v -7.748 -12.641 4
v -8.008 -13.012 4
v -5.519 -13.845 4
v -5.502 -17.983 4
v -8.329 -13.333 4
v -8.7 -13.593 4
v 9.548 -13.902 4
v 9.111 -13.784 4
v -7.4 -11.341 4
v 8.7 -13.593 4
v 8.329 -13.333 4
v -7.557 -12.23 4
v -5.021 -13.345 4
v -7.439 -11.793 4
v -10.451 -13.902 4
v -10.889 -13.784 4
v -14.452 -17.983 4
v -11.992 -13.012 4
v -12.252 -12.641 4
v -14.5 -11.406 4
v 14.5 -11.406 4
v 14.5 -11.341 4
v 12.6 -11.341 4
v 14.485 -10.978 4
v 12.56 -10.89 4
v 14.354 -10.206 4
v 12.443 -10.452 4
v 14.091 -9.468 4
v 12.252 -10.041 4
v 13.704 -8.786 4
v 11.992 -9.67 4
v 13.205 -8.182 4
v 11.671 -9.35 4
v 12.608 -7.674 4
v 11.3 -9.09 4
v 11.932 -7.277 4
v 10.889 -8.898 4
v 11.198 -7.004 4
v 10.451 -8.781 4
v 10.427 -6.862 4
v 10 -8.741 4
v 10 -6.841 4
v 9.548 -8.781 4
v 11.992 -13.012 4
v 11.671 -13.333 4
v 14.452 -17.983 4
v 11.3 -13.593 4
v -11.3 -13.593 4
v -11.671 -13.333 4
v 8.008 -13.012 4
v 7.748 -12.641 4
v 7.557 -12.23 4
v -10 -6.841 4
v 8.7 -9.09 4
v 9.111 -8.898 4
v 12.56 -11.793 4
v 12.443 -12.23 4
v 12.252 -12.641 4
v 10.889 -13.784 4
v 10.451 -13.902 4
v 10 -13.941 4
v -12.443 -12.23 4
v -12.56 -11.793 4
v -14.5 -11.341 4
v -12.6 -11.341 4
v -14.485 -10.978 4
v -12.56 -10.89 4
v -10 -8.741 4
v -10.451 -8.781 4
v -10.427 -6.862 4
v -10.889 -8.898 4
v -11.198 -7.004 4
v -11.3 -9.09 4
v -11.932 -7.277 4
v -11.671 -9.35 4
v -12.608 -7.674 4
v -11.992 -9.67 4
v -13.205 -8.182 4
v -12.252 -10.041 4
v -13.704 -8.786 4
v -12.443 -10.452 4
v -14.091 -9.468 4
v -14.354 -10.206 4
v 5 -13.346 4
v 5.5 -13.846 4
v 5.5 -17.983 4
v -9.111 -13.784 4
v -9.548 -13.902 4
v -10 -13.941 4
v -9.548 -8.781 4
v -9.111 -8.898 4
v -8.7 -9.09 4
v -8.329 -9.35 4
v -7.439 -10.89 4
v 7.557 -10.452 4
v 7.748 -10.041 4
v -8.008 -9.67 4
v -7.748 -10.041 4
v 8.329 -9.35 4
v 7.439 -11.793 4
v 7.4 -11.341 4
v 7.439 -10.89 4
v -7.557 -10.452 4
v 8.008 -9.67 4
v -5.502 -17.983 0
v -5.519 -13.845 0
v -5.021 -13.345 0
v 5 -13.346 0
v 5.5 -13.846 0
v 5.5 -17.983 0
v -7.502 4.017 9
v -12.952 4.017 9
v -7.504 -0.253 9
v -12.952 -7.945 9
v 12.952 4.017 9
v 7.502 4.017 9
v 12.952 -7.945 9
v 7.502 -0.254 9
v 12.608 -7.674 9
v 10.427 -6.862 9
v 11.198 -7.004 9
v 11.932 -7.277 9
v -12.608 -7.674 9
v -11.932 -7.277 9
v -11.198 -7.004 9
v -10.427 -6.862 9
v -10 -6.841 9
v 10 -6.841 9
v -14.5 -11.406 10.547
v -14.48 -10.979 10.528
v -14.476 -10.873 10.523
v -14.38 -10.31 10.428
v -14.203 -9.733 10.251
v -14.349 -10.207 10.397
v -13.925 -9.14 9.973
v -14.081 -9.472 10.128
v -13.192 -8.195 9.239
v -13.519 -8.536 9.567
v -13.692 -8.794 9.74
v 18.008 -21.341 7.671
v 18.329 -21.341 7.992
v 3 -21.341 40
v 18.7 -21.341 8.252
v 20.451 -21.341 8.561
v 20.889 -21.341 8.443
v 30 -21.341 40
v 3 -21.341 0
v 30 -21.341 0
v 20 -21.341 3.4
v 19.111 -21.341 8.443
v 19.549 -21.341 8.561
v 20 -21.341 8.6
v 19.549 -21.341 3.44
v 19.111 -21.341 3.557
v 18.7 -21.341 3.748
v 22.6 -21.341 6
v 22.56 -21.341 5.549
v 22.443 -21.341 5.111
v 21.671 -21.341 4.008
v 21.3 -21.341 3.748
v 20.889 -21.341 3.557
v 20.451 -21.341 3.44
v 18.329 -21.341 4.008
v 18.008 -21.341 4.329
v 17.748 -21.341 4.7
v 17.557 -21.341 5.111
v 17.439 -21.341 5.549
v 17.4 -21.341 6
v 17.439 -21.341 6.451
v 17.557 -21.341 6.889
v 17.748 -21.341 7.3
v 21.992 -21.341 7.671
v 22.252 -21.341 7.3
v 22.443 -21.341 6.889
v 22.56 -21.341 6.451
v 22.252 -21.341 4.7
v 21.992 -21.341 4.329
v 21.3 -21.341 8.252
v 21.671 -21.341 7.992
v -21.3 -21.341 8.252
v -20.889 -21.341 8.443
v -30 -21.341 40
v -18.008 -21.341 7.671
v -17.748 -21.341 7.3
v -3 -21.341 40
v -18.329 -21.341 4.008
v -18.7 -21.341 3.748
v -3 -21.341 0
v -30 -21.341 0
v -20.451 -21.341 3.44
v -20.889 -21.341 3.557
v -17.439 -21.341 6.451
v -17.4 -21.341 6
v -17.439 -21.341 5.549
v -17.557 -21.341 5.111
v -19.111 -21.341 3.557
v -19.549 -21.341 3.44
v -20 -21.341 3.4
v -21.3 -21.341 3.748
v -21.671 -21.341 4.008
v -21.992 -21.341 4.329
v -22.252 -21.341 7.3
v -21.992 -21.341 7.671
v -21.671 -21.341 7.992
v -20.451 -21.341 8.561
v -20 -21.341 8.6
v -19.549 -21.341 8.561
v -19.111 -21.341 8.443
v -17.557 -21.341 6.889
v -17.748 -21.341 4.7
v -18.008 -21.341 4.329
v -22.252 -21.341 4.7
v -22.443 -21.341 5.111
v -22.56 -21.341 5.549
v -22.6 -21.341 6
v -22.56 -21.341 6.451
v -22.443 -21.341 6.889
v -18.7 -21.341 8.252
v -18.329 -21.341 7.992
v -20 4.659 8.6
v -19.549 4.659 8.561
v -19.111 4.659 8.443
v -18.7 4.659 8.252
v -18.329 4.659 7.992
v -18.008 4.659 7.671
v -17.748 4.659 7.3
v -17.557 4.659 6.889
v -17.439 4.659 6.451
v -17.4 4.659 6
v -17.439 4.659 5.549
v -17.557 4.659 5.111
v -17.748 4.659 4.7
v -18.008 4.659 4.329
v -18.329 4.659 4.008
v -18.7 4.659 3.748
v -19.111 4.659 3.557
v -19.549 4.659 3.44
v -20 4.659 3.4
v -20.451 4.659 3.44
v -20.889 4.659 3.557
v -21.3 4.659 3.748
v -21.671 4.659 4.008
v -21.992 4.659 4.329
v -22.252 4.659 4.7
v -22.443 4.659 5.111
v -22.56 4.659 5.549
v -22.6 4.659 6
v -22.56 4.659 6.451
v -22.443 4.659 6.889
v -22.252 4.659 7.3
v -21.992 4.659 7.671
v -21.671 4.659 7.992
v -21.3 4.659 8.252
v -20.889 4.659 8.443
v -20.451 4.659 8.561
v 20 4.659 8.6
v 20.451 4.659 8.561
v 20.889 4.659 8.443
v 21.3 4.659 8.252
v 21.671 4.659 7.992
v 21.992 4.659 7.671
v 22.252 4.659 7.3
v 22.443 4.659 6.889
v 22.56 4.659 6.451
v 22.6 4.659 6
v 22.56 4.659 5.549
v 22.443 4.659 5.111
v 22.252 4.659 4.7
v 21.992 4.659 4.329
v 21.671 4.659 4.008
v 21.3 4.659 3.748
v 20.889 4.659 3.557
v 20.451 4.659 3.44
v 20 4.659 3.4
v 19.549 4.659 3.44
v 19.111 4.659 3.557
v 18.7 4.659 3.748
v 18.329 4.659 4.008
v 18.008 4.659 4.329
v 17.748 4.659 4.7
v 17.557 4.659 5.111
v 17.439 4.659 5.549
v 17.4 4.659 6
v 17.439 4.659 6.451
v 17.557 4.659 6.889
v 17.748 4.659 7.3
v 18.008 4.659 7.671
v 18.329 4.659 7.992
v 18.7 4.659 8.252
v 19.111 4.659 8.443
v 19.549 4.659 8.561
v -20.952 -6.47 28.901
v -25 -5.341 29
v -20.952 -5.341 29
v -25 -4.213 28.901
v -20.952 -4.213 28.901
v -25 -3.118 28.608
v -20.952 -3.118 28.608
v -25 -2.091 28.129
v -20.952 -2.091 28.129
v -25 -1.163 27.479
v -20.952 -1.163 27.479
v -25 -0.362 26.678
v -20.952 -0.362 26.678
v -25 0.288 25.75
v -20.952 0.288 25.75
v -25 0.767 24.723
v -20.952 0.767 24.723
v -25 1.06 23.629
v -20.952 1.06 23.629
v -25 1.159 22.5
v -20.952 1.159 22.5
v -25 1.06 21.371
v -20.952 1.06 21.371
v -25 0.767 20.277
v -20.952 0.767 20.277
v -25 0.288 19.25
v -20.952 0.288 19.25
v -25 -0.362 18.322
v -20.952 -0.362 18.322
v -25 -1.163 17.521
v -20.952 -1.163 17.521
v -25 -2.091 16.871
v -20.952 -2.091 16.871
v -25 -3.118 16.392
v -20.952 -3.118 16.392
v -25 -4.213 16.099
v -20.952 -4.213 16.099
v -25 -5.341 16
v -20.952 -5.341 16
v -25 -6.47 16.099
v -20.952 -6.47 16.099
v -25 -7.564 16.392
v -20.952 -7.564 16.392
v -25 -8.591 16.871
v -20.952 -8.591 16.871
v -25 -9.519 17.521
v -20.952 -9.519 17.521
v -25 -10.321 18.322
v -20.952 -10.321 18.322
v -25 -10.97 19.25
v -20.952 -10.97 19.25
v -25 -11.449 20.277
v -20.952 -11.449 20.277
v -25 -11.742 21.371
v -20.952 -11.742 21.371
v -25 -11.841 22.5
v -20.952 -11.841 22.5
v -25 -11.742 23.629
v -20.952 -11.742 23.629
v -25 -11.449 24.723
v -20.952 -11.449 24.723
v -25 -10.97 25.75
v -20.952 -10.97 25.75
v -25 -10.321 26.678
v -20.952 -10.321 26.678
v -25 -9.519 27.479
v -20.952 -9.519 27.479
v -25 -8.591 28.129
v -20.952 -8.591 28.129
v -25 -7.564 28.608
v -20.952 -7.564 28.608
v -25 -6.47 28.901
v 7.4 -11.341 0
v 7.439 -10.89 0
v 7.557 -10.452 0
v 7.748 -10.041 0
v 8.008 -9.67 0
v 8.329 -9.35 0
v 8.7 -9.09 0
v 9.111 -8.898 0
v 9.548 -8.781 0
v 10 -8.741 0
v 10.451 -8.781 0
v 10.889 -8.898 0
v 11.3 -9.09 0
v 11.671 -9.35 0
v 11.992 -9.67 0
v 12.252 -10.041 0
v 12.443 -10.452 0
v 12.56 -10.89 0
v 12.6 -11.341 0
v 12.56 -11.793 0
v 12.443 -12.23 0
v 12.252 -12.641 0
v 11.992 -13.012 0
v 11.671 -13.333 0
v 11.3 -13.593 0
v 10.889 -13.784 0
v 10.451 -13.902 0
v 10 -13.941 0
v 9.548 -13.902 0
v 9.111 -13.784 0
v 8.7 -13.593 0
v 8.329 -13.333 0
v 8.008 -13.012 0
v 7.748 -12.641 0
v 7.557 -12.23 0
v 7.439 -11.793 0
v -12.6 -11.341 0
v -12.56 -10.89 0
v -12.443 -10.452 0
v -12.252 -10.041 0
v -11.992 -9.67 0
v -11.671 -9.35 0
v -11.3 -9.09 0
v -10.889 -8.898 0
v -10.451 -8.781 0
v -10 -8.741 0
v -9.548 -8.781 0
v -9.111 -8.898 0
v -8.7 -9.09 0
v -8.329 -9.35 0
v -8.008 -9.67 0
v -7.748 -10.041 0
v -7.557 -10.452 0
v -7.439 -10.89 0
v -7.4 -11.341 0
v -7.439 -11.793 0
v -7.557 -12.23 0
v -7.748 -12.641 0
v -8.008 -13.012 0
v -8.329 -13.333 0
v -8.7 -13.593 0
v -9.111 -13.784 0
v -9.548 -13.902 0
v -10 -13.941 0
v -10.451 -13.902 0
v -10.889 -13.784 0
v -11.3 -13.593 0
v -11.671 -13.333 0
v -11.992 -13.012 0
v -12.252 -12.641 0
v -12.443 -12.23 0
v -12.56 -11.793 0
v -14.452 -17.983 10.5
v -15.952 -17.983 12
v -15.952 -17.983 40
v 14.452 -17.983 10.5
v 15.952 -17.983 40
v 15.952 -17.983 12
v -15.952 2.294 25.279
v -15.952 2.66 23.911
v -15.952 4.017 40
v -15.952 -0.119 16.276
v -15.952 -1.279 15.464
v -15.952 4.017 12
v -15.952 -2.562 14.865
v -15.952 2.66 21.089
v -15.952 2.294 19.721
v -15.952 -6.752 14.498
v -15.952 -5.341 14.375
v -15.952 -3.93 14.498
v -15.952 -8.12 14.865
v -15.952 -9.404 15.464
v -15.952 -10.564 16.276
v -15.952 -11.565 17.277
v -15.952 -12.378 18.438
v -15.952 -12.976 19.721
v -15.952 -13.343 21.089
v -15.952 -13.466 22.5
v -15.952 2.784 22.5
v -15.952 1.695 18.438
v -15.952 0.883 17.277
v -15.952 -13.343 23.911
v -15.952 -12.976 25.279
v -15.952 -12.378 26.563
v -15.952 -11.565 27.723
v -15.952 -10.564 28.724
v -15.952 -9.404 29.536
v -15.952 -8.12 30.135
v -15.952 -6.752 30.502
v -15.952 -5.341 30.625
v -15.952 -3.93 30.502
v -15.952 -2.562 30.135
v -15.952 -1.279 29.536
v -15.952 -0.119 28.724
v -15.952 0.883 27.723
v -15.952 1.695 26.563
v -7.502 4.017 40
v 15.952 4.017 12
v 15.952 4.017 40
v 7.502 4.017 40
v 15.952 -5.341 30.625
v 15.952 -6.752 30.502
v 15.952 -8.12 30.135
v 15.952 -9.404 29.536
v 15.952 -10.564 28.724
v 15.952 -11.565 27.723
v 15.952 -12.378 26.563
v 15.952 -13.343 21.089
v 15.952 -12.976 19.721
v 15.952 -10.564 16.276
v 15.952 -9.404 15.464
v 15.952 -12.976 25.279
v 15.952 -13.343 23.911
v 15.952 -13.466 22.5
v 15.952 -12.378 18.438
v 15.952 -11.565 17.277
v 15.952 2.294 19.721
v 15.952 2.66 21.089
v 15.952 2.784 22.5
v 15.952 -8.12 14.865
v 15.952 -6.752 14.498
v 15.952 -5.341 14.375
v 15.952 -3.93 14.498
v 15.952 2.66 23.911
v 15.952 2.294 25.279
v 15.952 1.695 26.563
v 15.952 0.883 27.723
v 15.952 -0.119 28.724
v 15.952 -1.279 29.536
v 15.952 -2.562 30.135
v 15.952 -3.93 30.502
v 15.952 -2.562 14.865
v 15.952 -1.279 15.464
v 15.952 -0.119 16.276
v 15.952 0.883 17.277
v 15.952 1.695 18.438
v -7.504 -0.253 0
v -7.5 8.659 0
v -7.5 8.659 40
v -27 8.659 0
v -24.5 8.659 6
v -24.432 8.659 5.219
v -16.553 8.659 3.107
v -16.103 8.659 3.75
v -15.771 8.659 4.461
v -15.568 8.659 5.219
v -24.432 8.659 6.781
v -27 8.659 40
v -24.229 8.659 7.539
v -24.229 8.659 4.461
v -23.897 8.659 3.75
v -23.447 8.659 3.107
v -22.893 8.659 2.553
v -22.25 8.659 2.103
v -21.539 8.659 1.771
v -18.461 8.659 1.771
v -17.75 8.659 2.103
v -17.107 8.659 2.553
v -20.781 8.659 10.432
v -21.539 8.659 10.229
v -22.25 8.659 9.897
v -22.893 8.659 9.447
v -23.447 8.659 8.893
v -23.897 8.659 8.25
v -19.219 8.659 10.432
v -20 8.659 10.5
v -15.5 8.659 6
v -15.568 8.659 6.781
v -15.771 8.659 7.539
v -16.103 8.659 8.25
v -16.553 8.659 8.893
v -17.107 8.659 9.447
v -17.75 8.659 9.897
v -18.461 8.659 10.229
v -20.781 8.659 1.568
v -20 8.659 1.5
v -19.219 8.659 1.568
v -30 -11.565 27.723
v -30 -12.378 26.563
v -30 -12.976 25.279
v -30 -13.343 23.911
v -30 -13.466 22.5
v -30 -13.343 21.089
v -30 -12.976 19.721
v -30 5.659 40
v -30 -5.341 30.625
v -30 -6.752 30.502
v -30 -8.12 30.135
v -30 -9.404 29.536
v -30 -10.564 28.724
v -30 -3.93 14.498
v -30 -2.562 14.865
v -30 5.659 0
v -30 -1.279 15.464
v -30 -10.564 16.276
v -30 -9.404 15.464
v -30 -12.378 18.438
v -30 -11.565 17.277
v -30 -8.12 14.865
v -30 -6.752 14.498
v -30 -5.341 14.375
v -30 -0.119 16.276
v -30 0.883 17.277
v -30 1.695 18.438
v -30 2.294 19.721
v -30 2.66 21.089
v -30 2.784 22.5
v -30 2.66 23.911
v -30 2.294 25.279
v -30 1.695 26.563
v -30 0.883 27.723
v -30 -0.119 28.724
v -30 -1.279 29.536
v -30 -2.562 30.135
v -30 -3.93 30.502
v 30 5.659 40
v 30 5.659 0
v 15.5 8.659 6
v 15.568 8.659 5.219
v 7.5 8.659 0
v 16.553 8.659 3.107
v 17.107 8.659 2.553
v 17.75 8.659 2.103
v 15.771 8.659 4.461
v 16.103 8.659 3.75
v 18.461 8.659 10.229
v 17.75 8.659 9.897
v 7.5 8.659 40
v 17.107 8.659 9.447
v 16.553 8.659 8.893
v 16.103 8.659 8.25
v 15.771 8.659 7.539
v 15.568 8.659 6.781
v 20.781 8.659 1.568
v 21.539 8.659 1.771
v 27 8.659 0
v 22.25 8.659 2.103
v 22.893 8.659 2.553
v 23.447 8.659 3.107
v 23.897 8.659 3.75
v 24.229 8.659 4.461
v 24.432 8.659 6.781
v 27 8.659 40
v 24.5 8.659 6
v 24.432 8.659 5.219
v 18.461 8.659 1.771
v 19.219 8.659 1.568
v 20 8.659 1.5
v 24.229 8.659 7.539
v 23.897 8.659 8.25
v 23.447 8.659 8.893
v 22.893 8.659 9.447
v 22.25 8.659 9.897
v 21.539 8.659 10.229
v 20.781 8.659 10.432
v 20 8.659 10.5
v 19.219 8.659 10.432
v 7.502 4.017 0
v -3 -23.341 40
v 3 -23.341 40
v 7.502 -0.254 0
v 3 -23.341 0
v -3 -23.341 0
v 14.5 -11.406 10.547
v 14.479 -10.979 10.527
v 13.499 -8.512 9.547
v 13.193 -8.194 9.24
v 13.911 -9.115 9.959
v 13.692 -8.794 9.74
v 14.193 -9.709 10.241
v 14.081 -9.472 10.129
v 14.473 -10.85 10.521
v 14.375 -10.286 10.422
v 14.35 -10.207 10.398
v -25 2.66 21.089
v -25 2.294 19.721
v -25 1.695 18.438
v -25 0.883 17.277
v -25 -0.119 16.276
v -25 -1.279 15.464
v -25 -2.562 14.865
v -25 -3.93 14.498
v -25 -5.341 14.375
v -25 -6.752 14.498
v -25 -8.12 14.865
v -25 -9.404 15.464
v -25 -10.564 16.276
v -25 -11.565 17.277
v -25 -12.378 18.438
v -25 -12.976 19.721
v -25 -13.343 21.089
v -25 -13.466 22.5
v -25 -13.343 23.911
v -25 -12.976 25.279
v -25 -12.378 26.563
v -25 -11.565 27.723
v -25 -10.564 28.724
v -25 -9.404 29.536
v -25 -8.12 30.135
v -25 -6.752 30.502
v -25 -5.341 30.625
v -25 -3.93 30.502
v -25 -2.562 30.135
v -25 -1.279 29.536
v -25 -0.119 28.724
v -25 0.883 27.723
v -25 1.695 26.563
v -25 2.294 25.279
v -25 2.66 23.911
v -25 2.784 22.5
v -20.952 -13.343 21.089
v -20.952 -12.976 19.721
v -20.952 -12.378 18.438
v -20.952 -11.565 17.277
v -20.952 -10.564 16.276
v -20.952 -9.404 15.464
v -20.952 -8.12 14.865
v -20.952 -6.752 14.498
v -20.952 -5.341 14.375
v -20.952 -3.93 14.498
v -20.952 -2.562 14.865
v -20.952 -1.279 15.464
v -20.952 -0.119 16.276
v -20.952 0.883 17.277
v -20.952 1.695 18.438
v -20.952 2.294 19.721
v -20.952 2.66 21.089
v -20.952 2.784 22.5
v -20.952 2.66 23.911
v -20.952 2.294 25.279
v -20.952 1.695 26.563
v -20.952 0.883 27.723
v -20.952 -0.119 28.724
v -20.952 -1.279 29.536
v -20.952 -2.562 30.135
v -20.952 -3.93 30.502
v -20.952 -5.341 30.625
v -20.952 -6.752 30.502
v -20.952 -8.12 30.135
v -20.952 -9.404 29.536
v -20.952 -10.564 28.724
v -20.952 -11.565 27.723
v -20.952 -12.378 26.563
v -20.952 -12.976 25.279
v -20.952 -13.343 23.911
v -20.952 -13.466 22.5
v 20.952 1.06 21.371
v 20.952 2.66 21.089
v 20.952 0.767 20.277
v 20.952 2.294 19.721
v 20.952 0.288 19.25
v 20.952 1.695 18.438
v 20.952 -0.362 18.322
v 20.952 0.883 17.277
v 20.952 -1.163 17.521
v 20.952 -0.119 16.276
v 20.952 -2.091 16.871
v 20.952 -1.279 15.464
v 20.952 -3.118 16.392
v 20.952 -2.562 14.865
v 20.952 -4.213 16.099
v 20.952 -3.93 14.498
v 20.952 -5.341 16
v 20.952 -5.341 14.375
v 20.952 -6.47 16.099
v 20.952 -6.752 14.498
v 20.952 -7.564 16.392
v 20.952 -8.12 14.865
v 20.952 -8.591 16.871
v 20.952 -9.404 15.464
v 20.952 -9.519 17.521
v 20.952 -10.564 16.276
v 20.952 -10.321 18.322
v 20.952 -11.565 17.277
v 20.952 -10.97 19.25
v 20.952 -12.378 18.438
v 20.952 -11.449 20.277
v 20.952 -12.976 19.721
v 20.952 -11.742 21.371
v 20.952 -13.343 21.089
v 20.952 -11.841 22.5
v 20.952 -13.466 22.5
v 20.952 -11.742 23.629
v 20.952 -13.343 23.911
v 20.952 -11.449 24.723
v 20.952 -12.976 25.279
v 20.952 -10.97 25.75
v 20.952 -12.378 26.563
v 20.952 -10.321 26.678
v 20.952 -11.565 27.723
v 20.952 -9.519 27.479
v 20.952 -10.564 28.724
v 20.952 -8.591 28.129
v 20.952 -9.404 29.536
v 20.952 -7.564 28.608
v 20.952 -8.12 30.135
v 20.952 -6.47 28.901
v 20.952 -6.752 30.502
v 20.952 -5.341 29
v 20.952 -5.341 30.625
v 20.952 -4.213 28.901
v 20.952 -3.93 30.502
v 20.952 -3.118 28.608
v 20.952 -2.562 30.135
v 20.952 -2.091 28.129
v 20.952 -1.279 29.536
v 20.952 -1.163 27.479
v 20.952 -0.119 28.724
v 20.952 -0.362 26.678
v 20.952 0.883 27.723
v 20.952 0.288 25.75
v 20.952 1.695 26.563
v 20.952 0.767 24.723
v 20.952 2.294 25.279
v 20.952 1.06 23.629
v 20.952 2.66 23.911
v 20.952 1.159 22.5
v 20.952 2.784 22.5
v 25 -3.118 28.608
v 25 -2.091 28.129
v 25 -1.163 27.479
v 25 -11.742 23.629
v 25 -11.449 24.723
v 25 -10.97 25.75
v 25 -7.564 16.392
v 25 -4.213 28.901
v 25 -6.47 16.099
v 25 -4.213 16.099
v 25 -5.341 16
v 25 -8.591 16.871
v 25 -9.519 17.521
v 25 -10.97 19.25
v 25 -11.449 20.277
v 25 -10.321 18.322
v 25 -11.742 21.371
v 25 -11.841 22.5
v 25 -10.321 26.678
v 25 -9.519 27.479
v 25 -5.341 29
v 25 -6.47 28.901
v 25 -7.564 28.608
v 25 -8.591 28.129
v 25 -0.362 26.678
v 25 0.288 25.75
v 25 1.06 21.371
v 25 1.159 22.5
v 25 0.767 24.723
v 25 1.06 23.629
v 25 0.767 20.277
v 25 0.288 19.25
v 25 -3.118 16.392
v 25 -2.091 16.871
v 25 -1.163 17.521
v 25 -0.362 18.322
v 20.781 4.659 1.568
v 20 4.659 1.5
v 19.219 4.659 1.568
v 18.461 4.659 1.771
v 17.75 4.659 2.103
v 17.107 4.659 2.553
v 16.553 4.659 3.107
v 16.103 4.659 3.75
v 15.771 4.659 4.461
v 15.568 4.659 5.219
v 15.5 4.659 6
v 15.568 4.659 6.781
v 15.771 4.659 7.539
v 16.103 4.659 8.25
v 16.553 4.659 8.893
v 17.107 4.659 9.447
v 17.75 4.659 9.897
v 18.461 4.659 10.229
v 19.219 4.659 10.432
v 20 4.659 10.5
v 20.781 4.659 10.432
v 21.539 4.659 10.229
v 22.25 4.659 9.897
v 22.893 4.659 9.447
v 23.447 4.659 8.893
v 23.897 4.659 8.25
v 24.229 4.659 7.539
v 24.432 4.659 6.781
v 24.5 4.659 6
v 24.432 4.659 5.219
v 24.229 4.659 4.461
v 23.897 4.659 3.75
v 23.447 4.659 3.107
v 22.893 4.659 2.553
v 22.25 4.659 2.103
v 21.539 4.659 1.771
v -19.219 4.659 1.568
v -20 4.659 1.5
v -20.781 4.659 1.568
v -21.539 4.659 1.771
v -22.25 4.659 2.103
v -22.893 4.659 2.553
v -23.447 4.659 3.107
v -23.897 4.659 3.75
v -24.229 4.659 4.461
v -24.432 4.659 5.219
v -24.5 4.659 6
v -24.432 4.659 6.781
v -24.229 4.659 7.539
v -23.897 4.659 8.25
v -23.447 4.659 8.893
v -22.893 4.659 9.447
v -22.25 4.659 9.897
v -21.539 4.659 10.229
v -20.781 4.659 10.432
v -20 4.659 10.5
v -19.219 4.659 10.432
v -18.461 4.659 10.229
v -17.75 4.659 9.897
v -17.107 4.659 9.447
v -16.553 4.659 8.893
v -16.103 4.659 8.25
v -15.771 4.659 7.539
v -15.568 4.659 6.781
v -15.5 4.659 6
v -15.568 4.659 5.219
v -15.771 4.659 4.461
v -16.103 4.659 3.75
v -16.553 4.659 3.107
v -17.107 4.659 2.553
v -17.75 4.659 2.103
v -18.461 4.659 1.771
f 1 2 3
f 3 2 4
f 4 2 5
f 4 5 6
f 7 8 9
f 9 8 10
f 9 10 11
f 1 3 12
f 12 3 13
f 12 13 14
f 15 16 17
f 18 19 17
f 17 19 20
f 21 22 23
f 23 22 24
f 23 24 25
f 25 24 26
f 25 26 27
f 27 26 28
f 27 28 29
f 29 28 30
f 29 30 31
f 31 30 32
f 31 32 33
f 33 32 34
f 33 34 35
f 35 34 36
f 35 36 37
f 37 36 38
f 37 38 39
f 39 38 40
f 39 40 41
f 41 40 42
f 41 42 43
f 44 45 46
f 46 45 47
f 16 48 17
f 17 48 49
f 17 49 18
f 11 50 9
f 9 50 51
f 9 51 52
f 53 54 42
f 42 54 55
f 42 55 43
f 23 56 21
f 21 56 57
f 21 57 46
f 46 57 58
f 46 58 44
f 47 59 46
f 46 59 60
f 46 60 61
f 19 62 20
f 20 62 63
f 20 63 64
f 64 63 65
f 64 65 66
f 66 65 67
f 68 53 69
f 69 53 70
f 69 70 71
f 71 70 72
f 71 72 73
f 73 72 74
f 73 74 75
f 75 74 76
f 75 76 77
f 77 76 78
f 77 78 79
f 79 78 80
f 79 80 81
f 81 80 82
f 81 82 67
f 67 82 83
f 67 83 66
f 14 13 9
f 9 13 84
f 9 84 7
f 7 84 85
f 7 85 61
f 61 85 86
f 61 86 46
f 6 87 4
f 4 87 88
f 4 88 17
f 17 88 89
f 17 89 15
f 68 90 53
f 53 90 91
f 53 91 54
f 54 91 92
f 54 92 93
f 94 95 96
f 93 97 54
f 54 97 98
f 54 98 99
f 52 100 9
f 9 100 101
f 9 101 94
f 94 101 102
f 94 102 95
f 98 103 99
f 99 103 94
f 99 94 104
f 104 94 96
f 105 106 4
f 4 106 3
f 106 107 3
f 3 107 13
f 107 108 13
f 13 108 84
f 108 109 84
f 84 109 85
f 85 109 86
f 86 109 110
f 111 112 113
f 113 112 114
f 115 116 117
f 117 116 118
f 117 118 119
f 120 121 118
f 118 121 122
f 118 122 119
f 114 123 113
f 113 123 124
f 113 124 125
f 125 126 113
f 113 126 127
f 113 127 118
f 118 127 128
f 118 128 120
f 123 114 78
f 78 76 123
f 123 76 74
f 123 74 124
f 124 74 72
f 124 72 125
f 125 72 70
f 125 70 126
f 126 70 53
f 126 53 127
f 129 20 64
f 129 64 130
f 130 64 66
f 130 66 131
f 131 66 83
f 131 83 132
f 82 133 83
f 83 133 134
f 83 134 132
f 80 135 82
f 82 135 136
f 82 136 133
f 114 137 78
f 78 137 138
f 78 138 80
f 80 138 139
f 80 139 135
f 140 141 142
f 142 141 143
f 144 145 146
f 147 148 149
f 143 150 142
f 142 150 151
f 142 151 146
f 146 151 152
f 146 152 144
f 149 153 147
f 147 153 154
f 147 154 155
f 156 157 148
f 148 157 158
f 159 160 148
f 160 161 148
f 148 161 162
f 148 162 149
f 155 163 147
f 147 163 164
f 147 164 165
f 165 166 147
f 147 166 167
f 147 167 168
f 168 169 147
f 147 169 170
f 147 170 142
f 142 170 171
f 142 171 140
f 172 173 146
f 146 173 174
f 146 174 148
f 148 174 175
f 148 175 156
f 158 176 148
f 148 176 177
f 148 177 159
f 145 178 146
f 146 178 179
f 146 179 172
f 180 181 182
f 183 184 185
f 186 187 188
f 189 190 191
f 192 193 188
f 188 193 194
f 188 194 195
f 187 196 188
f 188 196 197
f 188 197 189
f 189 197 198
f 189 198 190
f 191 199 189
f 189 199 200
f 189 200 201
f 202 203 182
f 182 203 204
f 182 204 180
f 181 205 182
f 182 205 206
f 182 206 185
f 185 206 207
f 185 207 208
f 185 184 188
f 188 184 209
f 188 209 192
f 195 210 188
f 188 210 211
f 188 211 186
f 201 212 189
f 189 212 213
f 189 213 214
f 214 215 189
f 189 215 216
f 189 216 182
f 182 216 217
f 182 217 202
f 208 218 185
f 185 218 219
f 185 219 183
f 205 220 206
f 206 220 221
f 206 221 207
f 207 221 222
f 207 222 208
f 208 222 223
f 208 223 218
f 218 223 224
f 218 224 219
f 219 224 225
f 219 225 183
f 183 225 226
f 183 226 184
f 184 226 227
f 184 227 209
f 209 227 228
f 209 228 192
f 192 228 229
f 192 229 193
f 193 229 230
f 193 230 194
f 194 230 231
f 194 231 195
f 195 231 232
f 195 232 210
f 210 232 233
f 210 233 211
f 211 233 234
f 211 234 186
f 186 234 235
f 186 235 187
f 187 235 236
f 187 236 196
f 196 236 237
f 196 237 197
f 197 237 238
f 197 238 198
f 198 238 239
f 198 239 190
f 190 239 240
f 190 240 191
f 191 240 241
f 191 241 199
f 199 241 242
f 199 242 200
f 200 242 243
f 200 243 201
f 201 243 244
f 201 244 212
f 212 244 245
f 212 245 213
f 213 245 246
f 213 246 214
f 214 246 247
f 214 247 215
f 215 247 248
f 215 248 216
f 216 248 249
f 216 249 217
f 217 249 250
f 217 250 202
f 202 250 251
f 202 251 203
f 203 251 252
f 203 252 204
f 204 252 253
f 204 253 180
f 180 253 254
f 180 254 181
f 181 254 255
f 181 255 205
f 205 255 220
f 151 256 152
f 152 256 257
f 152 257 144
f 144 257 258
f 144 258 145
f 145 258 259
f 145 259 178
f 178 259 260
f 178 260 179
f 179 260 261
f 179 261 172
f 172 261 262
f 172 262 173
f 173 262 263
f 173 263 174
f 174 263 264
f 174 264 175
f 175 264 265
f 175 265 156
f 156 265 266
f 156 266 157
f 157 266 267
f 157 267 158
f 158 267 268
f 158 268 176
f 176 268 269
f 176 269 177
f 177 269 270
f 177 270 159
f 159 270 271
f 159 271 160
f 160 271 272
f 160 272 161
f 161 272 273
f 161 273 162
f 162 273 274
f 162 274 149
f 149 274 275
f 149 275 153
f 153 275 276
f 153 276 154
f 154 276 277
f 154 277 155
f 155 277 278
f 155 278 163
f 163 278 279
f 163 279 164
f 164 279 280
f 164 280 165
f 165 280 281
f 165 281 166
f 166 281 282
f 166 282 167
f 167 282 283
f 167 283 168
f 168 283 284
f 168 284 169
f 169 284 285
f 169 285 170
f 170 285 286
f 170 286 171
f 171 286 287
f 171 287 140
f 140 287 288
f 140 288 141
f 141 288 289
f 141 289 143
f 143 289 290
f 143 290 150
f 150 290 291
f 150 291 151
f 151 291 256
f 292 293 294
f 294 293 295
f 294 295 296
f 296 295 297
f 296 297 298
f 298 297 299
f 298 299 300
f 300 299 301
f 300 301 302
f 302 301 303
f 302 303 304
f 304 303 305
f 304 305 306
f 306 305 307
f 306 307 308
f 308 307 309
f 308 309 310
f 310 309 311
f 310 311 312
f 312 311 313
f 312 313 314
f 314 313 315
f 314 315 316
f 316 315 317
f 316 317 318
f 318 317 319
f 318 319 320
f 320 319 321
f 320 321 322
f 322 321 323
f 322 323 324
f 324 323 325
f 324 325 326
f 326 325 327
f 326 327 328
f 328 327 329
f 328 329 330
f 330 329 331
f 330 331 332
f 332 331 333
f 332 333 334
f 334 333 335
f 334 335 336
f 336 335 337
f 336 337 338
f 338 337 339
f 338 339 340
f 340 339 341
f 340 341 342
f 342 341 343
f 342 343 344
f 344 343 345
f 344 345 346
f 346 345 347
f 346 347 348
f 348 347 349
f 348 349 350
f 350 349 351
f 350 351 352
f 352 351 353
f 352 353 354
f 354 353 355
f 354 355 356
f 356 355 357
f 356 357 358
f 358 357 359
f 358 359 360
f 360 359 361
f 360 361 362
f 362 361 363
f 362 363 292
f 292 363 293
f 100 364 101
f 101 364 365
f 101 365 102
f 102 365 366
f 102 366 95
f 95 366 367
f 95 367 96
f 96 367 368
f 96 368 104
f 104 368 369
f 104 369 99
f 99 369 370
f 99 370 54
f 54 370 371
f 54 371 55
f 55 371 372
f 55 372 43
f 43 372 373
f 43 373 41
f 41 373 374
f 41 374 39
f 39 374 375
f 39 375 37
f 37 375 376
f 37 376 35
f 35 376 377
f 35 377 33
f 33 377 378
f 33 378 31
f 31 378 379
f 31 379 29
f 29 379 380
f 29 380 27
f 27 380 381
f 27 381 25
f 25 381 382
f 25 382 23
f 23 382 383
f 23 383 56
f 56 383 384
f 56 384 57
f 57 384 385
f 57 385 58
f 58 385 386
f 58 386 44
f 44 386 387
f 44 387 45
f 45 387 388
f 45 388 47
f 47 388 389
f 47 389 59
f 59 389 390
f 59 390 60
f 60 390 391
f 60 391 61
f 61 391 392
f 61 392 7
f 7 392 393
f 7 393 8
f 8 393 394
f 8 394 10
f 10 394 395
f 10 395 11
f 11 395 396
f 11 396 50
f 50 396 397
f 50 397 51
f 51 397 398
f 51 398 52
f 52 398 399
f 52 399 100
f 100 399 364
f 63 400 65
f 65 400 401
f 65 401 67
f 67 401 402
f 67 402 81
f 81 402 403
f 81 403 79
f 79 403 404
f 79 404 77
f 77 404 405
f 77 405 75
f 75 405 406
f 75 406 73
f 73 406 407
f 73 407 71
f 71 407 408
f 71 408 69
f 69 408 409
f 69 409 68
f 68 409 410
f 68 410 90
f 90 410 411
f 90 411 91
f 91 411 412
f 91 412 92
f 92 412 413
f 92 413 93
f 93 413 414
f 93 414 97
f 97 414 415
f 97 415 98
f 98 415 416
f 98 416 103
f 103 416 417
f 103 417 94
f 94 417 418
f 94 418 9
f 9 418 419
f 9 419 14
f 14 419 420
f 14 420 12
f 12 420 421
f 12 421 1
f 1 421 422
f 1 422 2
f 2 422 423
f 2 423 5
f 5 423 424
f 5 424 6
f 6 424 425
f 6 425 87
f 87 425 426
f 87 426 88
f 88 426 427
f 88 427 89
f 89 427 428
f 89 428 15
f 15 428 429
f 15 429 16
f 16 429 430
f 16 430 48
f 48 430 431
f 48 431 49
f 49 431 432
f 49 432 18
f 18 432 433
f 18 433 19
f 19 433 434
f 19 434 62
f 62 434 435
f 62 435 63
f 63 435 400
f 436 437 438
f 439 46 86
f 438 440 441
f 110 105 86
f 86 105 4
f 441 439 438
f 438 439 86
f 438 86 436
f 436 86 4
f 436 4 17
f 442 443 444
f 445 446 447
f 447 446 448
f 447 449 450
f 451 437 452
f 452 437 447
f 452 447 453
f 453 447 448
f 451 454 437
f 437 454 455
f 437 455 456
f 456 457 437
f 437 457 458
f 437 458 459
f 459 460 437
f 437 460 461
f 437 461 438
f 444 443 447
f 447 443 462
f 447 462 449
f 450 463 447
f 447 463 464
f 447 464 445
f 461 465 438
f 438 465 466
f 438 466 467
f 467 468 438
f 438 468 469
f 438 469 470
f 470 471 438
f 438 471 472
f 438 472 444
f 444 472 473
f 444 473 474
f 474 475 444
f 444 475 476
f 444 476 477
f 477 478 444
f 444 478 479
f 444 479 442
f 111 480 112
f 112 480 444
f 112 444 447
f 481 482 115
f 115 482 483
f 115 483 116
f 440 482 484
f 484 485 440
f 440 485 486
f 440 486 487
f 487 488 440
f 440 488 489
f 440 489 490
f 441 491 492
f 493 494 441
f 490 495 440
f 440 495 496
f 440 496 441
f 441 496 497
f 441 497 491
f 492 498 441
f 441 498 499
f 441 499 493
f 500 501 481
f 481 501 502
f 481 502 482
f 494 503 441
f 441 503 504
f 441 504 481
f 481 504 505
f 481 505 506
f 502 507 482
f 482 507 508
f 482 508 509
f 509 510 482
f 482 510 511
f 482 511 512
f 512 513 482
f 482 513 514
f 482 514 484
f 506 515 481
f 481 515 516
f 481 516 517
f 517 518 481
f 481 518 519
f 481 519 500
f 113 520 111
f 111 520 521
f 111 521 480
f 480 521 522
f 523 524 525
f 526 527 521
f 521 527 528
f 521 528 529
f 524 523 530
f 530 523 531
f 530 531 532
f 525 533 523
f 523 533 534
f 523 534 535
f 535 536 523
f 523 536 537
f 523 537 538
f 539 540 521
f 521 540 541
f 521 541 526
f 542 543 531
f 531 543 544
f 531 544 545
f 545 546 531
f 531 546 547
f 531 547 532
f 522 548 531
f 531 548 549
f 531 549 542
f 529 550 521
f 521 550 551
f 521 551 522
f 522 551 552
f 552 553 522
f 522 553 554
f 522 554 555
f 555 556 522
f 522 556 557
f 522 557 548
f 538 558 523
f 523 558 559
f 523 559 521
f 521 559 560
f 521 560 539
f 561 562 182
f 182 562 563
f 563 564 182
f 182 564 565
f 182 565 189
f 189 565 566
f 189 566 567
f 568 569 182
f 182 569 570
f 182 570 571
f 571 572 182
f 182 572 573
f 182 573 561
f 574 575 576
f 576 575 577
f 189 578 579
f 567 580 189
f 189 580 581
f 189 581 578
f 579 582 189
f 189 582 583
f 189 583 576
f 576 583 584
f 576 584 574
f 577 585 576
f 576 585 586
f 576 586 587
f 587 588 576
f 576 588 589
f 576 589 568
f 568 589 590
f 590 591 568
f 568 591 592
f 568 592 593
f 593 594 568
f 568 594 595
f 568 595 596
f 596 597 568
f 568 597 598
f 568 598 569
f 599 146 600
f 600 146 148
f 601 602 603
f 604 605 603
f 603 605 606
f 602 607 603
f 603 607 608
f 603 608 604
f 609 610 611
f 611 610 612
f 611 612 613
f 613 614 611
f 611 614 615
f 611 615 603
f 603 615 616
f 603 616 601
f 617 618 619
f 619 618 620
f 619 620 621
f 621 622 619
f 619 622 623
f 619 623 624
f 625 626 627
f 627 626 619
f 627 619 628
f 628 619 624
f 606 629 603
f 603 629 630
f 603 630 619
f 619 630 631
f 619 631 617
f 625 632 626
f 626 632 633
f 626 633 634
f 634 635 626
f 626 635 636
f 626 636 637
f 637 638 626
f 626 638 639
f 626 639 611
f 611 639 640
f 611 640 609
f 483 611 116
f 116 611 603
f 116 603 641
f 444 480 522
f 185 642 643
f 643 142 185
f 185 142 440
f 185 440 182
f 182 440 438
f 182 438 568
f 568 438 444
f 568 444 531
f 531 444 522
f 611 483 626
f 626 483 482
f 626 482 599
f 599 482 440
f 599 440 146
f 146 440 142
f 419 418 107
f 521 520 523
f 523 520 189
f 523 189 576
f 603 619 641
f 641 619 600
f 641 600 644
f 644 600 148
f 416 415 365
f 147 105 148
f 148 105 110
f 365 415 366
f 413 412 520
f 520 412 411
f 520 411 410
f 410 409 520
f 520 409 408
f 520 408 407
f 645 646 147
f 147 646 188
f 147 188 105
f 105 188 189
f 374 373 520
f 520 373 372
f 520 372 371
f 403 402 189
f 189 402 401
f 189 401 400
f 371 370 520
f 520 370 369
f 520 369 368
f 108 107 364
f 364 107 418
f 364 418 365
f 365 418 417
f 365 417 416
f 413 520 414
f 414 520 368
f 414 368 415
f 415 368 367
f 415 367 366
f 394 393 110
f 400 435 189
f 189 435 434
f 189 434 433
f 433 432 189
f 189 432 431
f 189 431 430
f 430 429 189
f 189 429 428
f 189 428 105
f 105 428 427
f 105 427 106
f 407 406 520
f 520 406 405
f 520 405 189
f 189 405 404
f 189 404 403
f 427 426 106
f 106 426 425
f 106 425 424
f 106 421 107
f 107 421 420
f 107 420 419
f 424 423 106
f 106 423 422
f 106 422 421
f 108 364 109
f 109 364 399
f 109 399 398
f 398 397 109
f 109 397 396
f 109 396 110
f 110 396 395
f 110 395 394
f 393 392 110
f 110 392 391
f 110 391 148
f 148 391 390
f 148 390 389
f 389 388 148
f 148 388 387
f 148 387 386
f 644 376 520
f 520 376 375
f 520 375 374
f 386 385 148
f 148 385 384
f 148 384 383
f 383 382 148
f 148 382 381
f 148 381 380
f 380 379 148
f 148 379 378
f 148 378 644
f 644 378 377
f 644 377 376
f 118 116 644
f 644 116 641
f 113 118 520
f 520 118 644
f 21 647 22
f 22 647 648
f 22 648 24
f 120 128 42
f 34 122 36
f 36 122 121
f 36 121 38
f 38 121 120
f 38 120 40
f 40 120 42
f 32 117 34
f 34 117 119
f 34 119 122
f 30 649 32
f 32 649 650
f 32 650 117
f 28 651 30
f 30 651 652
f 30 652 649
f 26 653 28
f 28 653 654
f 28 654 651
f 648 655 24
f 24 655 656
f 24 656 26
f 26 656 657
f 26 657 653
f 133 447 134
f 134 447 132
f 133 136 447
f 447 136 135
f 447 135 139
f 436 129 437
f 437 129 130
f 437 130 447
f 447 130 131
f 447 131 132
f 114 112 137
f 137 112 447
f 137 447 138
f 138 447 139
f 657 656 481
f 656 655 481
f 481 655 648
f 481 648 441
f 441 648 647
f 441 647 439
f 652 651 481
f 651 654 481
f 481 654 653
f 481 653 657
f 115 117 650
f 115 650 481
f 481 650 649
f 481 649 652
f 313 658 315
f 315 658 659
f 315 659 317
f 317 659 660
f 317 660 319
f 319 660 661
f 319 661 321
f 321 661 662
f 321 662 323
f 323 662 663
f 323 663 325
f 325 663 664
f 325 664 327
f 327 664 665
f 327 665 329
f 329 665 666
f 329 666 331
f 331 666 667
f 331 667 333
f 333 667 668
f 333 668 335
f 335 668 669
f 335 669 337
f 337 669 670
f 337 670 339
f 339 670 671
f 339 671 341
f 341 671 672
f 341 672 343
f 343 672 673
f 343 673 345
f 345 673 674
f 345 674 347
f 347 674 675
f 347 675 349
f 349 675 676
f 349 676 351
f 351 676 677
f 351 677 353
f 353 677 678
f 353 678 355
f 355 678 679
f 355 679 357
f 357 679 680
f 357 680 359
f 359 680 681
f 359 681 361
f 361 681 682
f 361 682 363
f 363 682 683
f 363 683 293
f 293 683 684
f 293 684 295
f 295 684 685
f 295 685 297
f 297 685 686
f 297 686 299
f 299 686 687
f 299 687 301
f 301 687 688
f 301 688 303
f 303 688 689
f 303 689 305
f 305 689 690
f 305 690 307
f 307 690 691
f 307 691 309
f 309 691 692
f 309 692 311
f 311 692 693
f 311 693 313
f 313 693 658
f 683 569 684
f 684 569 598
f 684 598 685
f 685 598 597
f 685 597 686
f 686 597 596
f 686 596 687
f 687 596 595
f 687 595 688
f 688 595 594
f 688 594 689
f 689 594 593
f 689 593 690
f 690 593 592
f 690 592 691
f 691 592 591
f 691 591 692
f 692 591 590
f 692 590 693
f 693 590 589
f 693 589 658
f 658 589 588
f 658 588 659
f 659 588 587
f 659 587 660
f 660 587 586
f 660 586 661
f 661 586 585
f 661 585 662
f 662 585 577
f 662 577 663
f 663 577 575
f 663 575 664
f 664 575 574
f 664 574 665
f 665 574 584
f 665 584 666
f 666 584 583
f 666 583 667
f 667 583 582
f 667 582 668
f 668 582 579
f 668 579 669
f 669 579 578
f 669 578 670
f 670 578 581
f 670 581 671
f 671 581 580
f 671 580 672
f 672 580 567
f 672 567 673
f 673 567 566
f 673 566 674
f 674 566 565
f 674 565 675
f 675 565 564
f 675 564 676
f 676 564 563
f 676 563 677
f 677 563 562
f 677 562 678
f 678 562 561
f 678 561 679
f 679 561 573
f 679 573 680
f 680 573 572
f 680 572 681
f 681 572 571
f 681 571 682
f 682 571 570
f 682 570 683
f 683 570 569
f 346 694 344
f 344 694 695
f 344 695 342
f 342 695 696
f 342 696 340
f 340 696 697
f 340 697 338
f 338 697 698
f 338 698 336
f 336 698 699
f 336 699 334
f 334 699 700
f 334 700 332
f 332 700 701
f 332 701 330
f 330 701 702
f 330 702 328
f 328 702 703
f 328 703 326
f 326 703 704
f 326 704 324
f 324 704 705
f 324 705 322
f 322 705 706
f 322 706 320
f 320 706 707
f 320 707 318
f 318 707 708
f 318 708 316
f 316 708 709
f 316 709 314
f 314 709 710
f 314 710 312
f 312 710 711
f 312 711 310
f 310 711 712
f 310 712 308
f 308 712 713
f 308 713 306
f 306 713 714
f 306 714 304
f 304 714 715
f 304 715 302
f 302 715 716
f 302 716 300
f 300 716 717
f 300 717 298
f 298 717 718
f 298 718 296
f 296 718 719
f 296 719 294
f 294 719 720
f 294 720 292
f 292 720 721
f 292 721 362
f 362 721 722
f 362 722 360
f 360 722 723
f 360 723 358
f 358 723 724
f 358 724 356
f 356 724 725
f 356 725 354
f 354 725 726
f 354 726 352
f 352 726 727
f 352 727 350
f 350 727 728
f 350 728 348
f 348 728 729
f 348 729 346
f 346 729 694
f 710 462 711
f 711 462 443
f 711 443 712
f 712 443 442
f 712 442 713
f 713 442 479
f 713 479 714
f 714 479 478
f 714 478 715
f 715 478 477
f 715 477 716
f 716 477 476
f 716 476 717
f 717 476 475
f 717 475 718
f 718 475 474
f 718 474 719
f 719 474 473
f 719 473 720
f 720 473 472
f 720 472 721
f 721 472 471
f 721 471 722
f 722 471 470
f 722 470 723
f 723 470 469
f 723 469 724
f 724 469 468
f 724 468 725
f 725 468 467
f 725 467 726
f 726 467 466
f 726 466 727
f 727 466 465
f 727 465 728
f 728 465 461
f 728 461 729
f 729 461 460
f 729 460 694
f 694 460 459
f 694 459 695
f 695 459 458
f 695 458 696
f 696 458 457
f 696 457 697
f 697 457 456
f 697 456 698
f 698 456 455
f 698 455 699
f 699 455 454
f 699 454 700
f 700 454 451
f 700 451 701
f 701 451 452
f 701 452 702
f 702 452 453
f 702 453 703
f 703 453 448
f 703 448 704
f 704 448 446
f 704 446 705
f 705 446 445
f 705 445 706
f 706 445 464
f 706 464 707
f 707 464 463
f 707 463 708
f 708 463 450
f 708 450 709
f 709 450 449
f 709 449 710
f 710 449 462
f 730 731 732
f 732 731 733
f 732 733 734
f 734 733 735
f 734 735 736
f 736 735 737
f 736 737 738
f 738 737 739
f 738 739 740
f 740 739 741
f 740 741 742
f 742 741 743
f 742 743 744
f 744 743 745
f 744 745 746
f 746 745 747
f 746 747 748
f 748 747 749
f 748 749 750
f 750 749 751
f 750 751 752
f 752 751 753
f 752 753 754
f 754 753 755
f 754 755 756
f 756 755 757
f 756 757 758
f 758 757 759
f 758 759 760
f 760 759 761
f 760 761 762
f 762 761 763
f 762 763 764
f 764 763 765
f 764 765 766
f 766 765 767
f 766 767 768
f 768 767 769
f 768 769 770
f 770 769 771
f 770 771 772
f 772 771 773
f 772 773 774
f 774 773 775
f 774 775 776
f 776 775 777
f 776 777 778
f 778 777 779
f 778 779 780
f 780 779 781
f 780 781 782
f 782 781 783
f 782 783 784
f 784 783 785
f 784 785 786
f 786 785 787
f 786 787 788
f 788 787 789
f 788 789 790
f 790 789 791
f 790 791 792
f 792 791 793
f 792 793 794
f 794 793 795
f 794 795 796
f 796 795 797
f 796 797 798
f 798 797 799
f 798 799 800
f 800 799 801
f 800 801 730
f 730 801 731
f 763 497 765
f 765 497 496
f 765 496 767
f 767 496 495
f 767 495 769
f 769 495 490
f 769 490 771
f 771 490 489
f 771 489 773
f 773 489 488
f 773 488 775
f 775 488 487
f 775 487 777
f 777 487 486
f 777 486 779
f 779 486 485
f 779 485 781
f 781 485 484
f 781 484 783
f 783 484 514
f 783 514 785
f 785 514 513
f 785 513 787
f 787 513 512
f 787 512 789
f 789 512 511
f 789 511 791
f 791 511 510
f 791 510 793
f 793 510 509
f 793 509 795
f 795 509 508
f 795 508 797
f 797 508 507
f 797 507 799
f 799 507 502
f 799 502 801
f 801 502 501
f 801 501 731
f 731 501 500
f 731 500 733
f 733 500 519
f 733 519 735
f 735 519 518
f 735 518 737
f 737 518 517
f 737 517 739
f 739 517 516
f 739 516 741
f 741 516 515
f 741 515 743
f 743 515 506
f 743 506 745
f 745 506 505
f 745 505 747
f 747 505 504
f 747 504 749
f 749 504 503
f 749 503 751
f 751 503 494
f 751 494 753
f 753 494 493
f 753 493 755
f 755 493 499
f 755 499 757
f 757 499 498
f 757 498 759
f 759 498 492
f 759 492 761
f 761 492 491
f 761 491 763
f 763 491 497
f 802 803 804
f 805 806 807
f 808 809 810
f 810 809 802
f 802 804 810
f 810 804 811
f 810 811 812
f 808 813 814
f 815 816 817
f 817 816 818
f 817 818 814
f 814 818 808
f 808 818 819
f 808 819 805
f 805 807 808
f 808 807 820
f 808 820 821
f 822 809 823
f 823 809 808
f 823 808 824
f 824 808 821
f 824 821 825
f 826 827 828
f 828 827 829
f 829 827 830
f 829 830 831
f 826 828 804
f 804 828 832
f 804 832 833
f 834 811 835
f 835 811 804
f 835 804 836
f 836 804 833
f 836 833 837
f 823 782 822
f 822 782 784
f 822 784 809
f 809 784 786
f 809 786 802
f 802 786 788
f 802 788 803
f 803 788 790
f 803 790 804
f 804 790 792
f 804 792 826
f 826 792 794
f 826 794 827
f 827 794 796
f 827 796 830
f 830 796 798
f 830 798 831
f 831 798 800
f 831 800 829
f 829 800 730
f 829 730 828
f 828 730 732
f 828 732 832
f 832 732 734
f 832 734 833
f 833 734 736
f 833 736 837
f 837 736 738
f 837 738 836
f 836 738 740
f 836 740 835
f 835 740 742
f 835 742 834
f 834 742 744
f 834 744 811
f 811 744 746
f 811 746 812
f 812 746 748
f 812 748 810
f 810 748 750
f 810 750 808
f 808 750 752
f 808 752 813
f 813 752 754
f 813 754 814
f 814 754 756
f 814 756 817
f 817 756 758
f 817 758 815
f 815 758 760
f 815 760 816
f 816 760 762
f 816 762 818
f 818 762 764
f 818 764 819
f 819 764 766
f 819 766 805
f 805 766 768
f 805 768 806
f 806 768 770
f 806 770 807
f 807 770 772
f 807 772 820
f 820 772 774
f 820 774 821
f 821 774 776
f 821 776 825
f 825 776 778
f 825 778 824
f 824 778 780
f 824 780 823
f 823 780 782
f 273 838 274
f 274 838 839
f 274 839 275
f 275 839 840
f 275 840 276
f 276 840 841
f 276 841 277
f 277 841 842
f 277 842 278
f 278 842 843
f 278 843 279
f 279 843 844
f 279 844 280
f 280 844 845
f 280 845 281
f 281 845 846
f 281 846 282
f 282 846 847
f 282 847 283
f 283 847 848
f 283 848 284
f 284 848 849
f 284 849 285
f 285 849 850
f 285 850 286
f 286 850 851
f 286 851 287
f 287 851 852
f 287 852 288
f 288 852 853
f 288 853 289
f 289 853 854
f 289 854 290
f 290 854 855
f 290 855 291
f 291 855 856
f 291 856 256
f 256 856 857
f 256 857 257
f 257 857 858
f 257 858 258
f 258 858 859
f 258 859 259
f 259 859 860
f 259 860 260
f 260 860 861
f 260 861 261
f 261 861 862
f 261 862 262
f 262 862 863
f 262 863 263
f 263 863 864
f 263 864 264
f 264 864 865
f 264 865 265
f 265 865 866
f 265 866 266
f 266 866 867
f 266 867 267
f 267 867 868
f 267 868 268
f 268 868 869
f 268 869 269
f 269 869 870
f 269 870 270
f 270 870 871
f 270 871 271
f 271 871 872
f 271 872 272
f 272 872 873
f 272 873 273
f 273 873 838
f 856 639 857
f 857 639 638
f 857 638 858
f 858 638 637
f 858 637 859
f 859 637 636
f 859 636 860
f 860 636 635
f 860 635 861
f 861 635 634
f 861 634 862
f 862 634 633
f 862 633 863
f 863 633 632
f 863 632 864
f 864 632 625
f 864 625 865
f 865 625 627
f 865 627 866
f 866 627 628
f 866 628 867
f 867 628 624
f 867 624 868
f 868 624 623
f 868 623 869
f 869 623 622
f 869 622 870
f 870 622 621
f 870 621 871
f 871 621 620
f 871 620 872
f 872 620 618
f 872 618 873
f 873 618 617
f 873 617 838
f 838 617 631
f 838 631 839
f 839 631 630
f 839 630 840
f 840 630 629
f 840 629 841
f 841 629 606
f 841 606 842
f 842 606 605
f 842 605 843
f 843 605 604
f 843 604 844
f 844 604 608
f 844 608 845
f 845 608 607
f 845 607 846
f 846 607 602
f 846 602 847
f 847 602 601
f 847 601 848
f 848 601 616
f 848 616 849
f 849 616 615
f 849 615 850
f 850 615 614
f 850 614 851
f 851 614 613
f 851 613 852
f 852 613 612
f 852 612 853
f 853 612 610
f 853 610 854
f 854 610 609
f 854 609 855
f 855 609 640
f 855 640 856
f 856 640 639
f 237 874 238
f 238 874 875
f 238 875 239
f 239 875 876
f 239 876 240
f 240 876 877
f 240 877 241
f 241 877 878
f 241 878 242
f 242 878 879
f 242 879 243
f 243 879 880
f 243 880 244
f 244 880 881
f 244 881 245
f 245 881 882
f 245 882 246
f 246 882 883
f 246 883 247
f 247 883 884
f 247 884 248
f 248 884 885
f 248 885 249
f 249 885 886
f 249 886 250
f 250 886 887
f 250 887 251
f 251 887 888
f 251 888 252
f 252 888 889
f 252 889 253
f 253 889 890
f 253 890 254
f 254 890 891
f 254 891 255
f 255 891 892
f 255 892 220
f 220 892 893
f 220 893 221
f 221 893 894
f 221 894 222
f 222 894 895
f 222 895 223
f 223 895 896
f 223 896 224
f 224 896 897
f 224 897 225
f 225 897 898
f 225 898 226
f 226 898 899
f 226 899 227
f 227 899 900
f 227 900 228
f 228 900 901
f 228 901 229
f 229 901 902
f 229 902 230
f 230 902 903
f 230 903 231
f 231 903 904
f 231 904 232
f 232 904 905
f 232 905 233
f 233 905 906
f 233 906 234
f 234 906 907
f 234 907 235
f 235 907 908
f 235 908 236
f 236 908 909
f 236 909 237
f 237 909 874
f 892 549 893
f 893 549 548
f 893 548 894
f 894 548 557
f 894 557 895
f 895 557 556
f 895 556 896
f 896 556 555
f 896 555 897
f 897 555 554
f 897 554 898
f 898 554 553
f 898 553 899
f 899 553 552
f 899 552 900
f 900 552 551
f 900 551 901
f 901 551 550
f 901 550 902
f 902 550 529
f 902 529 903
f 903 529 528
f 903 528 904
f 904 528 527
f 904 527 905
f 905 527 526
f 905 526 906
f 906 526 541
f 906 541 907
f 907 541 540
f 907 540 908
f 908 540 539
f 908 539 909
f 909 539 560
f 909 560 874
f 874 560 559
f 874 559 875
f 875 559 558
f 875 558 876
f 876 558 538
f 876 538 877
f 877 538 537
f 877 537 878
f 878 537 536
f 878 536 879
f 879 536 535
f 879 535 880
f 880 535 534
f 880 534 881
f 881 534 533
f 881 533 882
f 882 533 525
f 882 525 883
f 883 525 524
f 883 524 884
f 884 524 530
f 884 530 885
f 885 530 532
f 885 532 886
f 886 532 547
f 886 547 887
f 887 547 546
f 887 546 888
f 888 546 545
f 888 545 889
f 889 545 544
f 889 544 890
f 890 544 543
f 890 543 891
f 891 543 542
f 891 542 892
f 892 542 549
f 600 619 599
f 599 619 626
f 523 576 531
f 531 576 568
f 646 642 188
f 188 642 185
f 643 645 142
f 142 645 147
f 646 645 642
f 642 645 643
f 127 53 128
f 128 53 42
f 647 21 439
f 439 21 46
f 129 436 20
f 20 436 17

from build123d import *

# Parameters (mm, degrees)
BOSS_EXTRUDE1_DEPTH = 40
SKETCH2_R           = 2.6
BOSS_EXTRUDE2_DEPTH = 9
SKETCH3_R           = 4.5
CUT_EXTRUDE1_DEPTH  = 5
SKETCH4_R           = 2.6
CUT_EXTRUDE2_DEPTH  = 59.309518948
CHAMFER1_SIZE       = 3
SKETCH5_R           = 6.5
CUT_EXTRUDE3_DEPTH  = 55
SKETCH6_R           = 8.125
CUT_EXTRUDE4_DEPTH  = 5
CUT_EXTRUDE5_START  = -5
SKETCH7_R           = 8.125
CUT_EXTRUDE5_DEPTH  = 5
SKETCH8_R           = 8.125
CUT_EXTRUDE6_DEPTH  = 5
SKETCH9_R           = 4.5
CUT_EXTRUDE7_DEPTH  = 4
CHAMFER2_SIZE       = 3
SKETCH10_W          = 6
SKETCH10_H          = 40
BOSS_EXTRUDE3_DEPTH = 2
CUT_EXTRUDE8_DEPTH  = 5
CUT_EXTRUDE9_DEPTH  = 36


with BuildPart() as part:
    # Sketch1 → Boss-Extrude1 (new body)
    with BuildSketch(Plane.XY):
        Polygon((30, -21.341245707), (30, 8.658754293), (7.5, 8.658754293), (7.502146126, 4.017294787), (15.952208639, 4.017294787), (15.952208639, -17.982705213), (-15.952208639, -17.982705213), (-15.952208639, 4.017294787), (-7.502146126, 4.017294787), (-7.5, 8.658754293), (-30, 8.658754293), (-30, -21.341245707), align=None)
    extrude(amount=BOSS_EXTRUDE1_DEPTH)

    # Sketch2 → Boss-Extrude2 (add)
    with BuildSketch(Plane(origin=(0, 0, 0), x_dir=(-1, 0, 0), z_dir=(0, 0, -1))):
        Polygon((-7.502146126, -0.25363415), (-7.502146126, 4.017294787), (-15.952208639, 4.017294787), (-15.952208639, -17.982705213), (-5.499999997, -17.982705213), (-5.499999997, -13.845664874), (-4.999999997, -13.345655401), (5.020834238, -13.345465543), (5.518750814, -13.845451729), (5.50151136, -17.982705213), (15.952208639, -17.982705213), (15.952208639, 4.017294787), (7.502146126, 4.017294787), (7.504120794, -0.253349836), align=None)
        with Locations((-9.99998, -11.341245707)):
            Circle(SKETCH2_R, mode=Mode.SUBTRACT)
        with Locations((9.99998, -11.341245707)):
            Circle(SKETCH2_R, mode=Mode.SUBTRACT)
    extrude(amount=-BOSS_EXTRUDE2_DEPTH)

    # Sketch3 → Cut-Extrude1 (cut)
    with BuildSketch(Plane.XY.offset(9)):
        with Locations((-9.99998, -11.341245707)):
            Circle(SKETCH3_R)
        with Locations((9.99998, -11.341245707)):
            Circle(SKETCH3_R)
    extrude(amount=-CUT_EXTRUDE1_DEPTH, mode=Mode.SUBTRACT)

    # Sketch4 → Cut-Extrude2 (cut, through all)
    with BuildSketch(Plane(origin=(0, 8.658754293, 0), x_dir=(1, 0, 0), z_dir=(0, 1, 0))):
        with Locations(Location((-20, -6, 0), (0, 0, 270))):
            Circle(SKETCH4_R)
        with Locations(Location((20, -6, 0), (0, 0, 90))):
            Circle(SKETCH4_R)
    extrude(amount=-CUT_EXTRUDE2_DEPTH, mode=Mode.SUBTRACT)

    # Chamfer1
    # the kernel refuses this chamfer: 3 mm, written as the material it adds along each edge
    with BuildSketch(Plane(origin=(15.952208639, 4.017294787, 9), x_dir=(0.02749587661058678, 0, 0.9996219169112968), z_dir=(0, -1, 0))) as chamfer1_piece_1_section:
        Polygon((CHAMFER1_SIZE * 0.999621916911, CHAMFER1_SIZE * 0.0274958766106), (-CHAMFER1_SIZE * 0.0274958766106, CHAMFER1_SIZE * 0.999621916911), (0, 0), align=None)
    chamfer1_piece_1 = extrude(amount=22, mode=Mode.PRIVATE)
    chamfer1_piece_1 = chamfer1_piece_1 - Plane(origin=(9.99998, -11.341245707, 10.026917349), x_dir=(1, 0, 0), z_dir=(0, 0, 1)) * Cylinder(4.5, 56, mode=Mode.PRIVATE)
    add(chamfer1_piece_1)
    with BuildSketch(Plane(origin=(-15.952208639, -17.982705213, 9), x_dir=(-0.02749587661058678, 0, 0.9996219169112968), z_dir=(0, 1, 0))) as chamfer1_piece_2_section:
        Polygon((CHAMFER1_SIZE * 0.999621916911, CHAMFER1_SIZE * 0.0274958766106), (-CHAMFER1_SIZE * 0.0274958766106, CHAMFER1_SIZE * 0.999621916911), (0, 0), align=None)
    chamfer1_piece_2 = extrude(amount=22, mode=Mode.PRIVATE)
    chamfer1_piece_2 = chamfer1_piece_2 - Plane(origin=(-9.99998, -11.341245707, 10.026917349), x_dir=(1, 0, 0), z_dir=(0, 0, 1)) * Cylinder(4.5, 56, mode=Mode.PRIVATE)
    add(chamfer1_piece_2)

    # Sketch5 → Cut-Extrude3 (cut)
    with BuildSketch(Plane.ZY.offset(30)):
        with Locations((22.5, -5.341245707)):
            Circle(SKETCH5_R)
    extrude(amount=-CUT_EXTRUDE3_DEPTH, mode=Mode.SUBTRACT)

    # Sketch6 → Cut-Extrude4 (cut)
    with BuildSketch(Plane.ZY.offset(30)):
        with Locations((22.5, -5.341245707)):
            Circle(SKETCH6_R)
    extrude(amount=-CUT_EXTRUDE4_DEPTH, mode=Mode.SUBTRACT)

    # Sketch7 → Cut-Extrude5 (cut)
    with BuildSketch(Plane(origin=(-15.952208639, 0, 0), x_dir=(0, 0, -1), z_dir=(1, 0, 0)).offset(CUT_EXTRUDE5_START)):
        with Locations(Location((-22.5, -5.341245707, 0), (0, 0, 180))):
            Circle(SKETCH7_R)
    extrude(amount=CUT_EXTRUDE5_DEPTH, mode=Mode.SUBTRACT)

    # Sketch8 → Cut-Extrude6 (cut)
    with BuildSketch(Plane.ZY.offset(-15.952208639)):
        with Locations((22.5, -5.341245707)):
            Circle(SKETCH8_R)
    extrude(amount=-CUT_EXTRUDE6_DEPTH, mode=Mode.SUBTRACT)

    # Sketch9 → Cut-Extrude7 (cut)
    with BuildSketch(Plane(origin=(0, 8.658754293, 0), x_dir=(1, 0, 0), z_dir=(0, 1, 0))):
        with Locations(Location((20, -6, 0), (0, 0, 270))):
            Circle(SKETCH9_R)
        with Locations(Location((-20, -6, 0), (0, 0, 270))):
            Circle(SKETCH9_R)
    extrude(amount=-CUT_EXTRUDE7_DEPTH, mode=Mode.SUBTRACT)

    # Chamfer2
    chamfer2_edges = [part.edges().sort_by_distance(p)[0] for p in [
        (30, 8.658754293, 20),
        (-30, 8.658754293, 20),
    ]]
    chamfer(chamfer2_edges, length=CHAMFER2_SIZE)

    # Sketch10 → Boss-Extrude3 (add)
    with BuildSketch(Plane.XZ.offset(21.341245707)):
        with Locations((0, 20)):
            Rectangle(SKETCH10_W, SKETCH10_H)
    extrude(amount=BOSS_EXTRUDE3_DEPTH)

    # Sketch11 → Cut-Extrude8 (cut)
    with BuildSketch(Plane.XY.offset(9)):
        with BuildLine():
            Line((9.99998, -6.841245707), (-9.99998, -6.841245707))
            ThreePointArc((-9.99998, -6.841245707), (-5.784946566, -12.917155968), (-12.952208639, -14.737470974))
            Line((-12.952208639, -14.737470974), (-12.952208639, -17.982705213))
            Line((-12.952208639, -17.982705213), (-5.50151136, -17.982705213))
            Line((-5.50151136, -17.982705213), (-5.518750814, -13.845451729))
            Line((-5.518750814, -13.845451729), (-5.020834238, -13.345465543))
            Line((-5.020834238, -13.345465543), (4.999999997, -13.345655401))
            Line((4.999999997, -13.345655401), (5.499999997, -13.845664874))
            Line((5.499999997, -13.845664874), (5.499999997, -17.982705213))
            Line((5.499999997, -17.982705213), (12.952208639, -17.982705213))
            Line((12.952208639, -17.982705213), (12.952208639, -14.737470974))
            ThreePointArc((12.952208639, -14.737470974), (5.784946566, -12.917155968), (9.99998, -6.841245707))
        make_face()
        with BuildLine():
            Line((-12.952208639, -17.982705213), (-12.952208639, -14.737470974))
            ThreePointArc((-12.952208639, -14.737470974), (-14.081267005, -13.236792167), (-14.499514384, -11.405978467))
            Line((-14.499514384, -11.405978467), (-14.452208639, -17.982705213))
            Line((-14.452208639, -17.982705213), (-12.952208639, -17.982705213))
        make_face()
        with BuildLine():
            ThreePointArc((14.499514384, -11.405978467), (14.081267005, -13.236792167), (12.952208639, -14.737470974))
            Line((12.952208639, -14.737470974), (12.952208639, -17.982705213))
            Line((12.952208639, -17.982705213), (14.452208639, -17.982705213))
            Line((14.452208639, -17.982705213), (14.499514384, -11.405978467))
        make_face()
    extrude(amount=-CUT_EXTRUDE8_DEPTH, mode=Mode.SUBTRACT)

    # Sketch13 → Cut-Extrude9 (cut)
    with BuildSketch(Plane.XY.offset(40)):
        Polygon((-14.49998, -11.341245707), (-14.452208639, -17.982705213), (14.452208639, -17.982705213), (14.49998, -11.341245707), align=None)
    extrude(amount=-CUT_EXTRUDE9_DEPTH, mode=Mode.SUBTRACT)


solid = part.part
